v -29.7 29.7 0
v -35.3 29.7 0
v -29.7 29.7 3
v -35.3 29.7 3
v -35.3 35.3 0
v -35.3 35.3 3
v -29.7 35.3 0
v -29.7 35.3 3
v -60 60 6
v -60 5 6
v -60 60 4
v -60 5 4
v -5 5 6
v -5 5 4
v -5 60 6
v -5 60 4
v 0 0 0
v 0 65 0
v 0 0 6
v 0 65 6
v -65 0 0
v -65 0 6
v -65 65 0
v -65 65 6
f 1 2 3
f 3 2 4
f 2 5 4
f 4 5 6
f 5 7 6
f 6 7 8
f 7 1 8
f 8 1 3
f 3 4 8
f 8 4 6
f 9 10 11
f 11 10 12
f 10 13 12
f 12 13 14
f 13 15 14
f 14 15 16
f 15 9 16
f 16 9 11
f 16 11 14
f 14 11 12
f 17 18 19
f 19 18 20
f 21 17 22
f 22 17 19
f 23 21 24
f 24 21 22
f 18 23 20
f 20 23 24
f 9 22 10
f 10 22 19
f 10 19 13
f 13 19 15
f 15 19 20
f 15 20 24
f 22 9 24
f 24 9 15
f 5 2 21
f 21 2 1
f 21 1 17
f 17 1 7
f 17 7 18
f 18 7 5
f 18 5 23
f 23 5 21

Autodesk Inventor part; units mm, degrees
ref_plane "YZ Plane" through (0, 0, 0) normal (1, 0, 0) x (0, 1, 0)
ref_plane "XZ Plane" through (0, 0, 0) normal (0, 1, 0) x (-1, 0, 0)
ref_plane "XY Plane" through (0, 0, 0) normal (0, 0, 1) x (1, 0, 0)
sketch "Sketch1" plane through (0, 0, 0) normal (0, 0, 1) x (1, 0, 0)
  line L0 (0, 0) -> (-65, 0)
  line L1 (-65, 0) -> (-65, 65)
  line L2 (-65, 65) -> (0, 65)
  line L3 (0, 65) -> (0, 0)
  dimension "d4" = 65
  dimension "d5" = 65
extrude "Extrusion1" add sketch "Sketch1" along normal blind 6
sketch "Sketch2" plane through (0, 0, 6) normal (0, 0, 1) x (1, 0, 0)
  line L0 (-5, 5) -> (-60, 5)
  line L1 (-60, 5) -> (-60, 60)
  line L2 (-60, 60) -> (-5, 60)
  line L3 (-5, 60) -> (-5, 5)
  point P0 (0, 0)
  dimension "d8" = 55
  dimension "d9" = 55
extrude "Extrusion2" cut sketch "Sketch2" against normal blind 2
sketch "Sketch4" plane through (0, 0, 0) normal (0, 0, -1) x (-1, 0, 0)
  line L0 (32.5, 32.5) -> (29.7, 32.5)
  line L1 (29.7, 32.5) -> (29.7, 35.3)
  line L2 (29.7, 35.3) -> (32.5, 35.3)
  line L3 (32.5, 35.3) -> (32.5, 32.5)
  line L4 (29.7, 35.3) -> (35.3, 35.3)
  line L5 (35.3, 35.3) -> (35.3, 29.7)
  line L6 (35.3, 29.7) -> (29.7, 29.7)
  line L7 (29.7, 29.7) -> (29.7, 35.3)
  point P0 (0, 0)
  dimension "d30" = 2.8
  dimension "d31" = 2.8
  dimension "d32" = 5.6
  dimension "d33" = 5.6
extrude "Extrusion6" cut sketch "Sketch4" against normal blind 3
properties part number "Clip_MarkerHolderV1"
